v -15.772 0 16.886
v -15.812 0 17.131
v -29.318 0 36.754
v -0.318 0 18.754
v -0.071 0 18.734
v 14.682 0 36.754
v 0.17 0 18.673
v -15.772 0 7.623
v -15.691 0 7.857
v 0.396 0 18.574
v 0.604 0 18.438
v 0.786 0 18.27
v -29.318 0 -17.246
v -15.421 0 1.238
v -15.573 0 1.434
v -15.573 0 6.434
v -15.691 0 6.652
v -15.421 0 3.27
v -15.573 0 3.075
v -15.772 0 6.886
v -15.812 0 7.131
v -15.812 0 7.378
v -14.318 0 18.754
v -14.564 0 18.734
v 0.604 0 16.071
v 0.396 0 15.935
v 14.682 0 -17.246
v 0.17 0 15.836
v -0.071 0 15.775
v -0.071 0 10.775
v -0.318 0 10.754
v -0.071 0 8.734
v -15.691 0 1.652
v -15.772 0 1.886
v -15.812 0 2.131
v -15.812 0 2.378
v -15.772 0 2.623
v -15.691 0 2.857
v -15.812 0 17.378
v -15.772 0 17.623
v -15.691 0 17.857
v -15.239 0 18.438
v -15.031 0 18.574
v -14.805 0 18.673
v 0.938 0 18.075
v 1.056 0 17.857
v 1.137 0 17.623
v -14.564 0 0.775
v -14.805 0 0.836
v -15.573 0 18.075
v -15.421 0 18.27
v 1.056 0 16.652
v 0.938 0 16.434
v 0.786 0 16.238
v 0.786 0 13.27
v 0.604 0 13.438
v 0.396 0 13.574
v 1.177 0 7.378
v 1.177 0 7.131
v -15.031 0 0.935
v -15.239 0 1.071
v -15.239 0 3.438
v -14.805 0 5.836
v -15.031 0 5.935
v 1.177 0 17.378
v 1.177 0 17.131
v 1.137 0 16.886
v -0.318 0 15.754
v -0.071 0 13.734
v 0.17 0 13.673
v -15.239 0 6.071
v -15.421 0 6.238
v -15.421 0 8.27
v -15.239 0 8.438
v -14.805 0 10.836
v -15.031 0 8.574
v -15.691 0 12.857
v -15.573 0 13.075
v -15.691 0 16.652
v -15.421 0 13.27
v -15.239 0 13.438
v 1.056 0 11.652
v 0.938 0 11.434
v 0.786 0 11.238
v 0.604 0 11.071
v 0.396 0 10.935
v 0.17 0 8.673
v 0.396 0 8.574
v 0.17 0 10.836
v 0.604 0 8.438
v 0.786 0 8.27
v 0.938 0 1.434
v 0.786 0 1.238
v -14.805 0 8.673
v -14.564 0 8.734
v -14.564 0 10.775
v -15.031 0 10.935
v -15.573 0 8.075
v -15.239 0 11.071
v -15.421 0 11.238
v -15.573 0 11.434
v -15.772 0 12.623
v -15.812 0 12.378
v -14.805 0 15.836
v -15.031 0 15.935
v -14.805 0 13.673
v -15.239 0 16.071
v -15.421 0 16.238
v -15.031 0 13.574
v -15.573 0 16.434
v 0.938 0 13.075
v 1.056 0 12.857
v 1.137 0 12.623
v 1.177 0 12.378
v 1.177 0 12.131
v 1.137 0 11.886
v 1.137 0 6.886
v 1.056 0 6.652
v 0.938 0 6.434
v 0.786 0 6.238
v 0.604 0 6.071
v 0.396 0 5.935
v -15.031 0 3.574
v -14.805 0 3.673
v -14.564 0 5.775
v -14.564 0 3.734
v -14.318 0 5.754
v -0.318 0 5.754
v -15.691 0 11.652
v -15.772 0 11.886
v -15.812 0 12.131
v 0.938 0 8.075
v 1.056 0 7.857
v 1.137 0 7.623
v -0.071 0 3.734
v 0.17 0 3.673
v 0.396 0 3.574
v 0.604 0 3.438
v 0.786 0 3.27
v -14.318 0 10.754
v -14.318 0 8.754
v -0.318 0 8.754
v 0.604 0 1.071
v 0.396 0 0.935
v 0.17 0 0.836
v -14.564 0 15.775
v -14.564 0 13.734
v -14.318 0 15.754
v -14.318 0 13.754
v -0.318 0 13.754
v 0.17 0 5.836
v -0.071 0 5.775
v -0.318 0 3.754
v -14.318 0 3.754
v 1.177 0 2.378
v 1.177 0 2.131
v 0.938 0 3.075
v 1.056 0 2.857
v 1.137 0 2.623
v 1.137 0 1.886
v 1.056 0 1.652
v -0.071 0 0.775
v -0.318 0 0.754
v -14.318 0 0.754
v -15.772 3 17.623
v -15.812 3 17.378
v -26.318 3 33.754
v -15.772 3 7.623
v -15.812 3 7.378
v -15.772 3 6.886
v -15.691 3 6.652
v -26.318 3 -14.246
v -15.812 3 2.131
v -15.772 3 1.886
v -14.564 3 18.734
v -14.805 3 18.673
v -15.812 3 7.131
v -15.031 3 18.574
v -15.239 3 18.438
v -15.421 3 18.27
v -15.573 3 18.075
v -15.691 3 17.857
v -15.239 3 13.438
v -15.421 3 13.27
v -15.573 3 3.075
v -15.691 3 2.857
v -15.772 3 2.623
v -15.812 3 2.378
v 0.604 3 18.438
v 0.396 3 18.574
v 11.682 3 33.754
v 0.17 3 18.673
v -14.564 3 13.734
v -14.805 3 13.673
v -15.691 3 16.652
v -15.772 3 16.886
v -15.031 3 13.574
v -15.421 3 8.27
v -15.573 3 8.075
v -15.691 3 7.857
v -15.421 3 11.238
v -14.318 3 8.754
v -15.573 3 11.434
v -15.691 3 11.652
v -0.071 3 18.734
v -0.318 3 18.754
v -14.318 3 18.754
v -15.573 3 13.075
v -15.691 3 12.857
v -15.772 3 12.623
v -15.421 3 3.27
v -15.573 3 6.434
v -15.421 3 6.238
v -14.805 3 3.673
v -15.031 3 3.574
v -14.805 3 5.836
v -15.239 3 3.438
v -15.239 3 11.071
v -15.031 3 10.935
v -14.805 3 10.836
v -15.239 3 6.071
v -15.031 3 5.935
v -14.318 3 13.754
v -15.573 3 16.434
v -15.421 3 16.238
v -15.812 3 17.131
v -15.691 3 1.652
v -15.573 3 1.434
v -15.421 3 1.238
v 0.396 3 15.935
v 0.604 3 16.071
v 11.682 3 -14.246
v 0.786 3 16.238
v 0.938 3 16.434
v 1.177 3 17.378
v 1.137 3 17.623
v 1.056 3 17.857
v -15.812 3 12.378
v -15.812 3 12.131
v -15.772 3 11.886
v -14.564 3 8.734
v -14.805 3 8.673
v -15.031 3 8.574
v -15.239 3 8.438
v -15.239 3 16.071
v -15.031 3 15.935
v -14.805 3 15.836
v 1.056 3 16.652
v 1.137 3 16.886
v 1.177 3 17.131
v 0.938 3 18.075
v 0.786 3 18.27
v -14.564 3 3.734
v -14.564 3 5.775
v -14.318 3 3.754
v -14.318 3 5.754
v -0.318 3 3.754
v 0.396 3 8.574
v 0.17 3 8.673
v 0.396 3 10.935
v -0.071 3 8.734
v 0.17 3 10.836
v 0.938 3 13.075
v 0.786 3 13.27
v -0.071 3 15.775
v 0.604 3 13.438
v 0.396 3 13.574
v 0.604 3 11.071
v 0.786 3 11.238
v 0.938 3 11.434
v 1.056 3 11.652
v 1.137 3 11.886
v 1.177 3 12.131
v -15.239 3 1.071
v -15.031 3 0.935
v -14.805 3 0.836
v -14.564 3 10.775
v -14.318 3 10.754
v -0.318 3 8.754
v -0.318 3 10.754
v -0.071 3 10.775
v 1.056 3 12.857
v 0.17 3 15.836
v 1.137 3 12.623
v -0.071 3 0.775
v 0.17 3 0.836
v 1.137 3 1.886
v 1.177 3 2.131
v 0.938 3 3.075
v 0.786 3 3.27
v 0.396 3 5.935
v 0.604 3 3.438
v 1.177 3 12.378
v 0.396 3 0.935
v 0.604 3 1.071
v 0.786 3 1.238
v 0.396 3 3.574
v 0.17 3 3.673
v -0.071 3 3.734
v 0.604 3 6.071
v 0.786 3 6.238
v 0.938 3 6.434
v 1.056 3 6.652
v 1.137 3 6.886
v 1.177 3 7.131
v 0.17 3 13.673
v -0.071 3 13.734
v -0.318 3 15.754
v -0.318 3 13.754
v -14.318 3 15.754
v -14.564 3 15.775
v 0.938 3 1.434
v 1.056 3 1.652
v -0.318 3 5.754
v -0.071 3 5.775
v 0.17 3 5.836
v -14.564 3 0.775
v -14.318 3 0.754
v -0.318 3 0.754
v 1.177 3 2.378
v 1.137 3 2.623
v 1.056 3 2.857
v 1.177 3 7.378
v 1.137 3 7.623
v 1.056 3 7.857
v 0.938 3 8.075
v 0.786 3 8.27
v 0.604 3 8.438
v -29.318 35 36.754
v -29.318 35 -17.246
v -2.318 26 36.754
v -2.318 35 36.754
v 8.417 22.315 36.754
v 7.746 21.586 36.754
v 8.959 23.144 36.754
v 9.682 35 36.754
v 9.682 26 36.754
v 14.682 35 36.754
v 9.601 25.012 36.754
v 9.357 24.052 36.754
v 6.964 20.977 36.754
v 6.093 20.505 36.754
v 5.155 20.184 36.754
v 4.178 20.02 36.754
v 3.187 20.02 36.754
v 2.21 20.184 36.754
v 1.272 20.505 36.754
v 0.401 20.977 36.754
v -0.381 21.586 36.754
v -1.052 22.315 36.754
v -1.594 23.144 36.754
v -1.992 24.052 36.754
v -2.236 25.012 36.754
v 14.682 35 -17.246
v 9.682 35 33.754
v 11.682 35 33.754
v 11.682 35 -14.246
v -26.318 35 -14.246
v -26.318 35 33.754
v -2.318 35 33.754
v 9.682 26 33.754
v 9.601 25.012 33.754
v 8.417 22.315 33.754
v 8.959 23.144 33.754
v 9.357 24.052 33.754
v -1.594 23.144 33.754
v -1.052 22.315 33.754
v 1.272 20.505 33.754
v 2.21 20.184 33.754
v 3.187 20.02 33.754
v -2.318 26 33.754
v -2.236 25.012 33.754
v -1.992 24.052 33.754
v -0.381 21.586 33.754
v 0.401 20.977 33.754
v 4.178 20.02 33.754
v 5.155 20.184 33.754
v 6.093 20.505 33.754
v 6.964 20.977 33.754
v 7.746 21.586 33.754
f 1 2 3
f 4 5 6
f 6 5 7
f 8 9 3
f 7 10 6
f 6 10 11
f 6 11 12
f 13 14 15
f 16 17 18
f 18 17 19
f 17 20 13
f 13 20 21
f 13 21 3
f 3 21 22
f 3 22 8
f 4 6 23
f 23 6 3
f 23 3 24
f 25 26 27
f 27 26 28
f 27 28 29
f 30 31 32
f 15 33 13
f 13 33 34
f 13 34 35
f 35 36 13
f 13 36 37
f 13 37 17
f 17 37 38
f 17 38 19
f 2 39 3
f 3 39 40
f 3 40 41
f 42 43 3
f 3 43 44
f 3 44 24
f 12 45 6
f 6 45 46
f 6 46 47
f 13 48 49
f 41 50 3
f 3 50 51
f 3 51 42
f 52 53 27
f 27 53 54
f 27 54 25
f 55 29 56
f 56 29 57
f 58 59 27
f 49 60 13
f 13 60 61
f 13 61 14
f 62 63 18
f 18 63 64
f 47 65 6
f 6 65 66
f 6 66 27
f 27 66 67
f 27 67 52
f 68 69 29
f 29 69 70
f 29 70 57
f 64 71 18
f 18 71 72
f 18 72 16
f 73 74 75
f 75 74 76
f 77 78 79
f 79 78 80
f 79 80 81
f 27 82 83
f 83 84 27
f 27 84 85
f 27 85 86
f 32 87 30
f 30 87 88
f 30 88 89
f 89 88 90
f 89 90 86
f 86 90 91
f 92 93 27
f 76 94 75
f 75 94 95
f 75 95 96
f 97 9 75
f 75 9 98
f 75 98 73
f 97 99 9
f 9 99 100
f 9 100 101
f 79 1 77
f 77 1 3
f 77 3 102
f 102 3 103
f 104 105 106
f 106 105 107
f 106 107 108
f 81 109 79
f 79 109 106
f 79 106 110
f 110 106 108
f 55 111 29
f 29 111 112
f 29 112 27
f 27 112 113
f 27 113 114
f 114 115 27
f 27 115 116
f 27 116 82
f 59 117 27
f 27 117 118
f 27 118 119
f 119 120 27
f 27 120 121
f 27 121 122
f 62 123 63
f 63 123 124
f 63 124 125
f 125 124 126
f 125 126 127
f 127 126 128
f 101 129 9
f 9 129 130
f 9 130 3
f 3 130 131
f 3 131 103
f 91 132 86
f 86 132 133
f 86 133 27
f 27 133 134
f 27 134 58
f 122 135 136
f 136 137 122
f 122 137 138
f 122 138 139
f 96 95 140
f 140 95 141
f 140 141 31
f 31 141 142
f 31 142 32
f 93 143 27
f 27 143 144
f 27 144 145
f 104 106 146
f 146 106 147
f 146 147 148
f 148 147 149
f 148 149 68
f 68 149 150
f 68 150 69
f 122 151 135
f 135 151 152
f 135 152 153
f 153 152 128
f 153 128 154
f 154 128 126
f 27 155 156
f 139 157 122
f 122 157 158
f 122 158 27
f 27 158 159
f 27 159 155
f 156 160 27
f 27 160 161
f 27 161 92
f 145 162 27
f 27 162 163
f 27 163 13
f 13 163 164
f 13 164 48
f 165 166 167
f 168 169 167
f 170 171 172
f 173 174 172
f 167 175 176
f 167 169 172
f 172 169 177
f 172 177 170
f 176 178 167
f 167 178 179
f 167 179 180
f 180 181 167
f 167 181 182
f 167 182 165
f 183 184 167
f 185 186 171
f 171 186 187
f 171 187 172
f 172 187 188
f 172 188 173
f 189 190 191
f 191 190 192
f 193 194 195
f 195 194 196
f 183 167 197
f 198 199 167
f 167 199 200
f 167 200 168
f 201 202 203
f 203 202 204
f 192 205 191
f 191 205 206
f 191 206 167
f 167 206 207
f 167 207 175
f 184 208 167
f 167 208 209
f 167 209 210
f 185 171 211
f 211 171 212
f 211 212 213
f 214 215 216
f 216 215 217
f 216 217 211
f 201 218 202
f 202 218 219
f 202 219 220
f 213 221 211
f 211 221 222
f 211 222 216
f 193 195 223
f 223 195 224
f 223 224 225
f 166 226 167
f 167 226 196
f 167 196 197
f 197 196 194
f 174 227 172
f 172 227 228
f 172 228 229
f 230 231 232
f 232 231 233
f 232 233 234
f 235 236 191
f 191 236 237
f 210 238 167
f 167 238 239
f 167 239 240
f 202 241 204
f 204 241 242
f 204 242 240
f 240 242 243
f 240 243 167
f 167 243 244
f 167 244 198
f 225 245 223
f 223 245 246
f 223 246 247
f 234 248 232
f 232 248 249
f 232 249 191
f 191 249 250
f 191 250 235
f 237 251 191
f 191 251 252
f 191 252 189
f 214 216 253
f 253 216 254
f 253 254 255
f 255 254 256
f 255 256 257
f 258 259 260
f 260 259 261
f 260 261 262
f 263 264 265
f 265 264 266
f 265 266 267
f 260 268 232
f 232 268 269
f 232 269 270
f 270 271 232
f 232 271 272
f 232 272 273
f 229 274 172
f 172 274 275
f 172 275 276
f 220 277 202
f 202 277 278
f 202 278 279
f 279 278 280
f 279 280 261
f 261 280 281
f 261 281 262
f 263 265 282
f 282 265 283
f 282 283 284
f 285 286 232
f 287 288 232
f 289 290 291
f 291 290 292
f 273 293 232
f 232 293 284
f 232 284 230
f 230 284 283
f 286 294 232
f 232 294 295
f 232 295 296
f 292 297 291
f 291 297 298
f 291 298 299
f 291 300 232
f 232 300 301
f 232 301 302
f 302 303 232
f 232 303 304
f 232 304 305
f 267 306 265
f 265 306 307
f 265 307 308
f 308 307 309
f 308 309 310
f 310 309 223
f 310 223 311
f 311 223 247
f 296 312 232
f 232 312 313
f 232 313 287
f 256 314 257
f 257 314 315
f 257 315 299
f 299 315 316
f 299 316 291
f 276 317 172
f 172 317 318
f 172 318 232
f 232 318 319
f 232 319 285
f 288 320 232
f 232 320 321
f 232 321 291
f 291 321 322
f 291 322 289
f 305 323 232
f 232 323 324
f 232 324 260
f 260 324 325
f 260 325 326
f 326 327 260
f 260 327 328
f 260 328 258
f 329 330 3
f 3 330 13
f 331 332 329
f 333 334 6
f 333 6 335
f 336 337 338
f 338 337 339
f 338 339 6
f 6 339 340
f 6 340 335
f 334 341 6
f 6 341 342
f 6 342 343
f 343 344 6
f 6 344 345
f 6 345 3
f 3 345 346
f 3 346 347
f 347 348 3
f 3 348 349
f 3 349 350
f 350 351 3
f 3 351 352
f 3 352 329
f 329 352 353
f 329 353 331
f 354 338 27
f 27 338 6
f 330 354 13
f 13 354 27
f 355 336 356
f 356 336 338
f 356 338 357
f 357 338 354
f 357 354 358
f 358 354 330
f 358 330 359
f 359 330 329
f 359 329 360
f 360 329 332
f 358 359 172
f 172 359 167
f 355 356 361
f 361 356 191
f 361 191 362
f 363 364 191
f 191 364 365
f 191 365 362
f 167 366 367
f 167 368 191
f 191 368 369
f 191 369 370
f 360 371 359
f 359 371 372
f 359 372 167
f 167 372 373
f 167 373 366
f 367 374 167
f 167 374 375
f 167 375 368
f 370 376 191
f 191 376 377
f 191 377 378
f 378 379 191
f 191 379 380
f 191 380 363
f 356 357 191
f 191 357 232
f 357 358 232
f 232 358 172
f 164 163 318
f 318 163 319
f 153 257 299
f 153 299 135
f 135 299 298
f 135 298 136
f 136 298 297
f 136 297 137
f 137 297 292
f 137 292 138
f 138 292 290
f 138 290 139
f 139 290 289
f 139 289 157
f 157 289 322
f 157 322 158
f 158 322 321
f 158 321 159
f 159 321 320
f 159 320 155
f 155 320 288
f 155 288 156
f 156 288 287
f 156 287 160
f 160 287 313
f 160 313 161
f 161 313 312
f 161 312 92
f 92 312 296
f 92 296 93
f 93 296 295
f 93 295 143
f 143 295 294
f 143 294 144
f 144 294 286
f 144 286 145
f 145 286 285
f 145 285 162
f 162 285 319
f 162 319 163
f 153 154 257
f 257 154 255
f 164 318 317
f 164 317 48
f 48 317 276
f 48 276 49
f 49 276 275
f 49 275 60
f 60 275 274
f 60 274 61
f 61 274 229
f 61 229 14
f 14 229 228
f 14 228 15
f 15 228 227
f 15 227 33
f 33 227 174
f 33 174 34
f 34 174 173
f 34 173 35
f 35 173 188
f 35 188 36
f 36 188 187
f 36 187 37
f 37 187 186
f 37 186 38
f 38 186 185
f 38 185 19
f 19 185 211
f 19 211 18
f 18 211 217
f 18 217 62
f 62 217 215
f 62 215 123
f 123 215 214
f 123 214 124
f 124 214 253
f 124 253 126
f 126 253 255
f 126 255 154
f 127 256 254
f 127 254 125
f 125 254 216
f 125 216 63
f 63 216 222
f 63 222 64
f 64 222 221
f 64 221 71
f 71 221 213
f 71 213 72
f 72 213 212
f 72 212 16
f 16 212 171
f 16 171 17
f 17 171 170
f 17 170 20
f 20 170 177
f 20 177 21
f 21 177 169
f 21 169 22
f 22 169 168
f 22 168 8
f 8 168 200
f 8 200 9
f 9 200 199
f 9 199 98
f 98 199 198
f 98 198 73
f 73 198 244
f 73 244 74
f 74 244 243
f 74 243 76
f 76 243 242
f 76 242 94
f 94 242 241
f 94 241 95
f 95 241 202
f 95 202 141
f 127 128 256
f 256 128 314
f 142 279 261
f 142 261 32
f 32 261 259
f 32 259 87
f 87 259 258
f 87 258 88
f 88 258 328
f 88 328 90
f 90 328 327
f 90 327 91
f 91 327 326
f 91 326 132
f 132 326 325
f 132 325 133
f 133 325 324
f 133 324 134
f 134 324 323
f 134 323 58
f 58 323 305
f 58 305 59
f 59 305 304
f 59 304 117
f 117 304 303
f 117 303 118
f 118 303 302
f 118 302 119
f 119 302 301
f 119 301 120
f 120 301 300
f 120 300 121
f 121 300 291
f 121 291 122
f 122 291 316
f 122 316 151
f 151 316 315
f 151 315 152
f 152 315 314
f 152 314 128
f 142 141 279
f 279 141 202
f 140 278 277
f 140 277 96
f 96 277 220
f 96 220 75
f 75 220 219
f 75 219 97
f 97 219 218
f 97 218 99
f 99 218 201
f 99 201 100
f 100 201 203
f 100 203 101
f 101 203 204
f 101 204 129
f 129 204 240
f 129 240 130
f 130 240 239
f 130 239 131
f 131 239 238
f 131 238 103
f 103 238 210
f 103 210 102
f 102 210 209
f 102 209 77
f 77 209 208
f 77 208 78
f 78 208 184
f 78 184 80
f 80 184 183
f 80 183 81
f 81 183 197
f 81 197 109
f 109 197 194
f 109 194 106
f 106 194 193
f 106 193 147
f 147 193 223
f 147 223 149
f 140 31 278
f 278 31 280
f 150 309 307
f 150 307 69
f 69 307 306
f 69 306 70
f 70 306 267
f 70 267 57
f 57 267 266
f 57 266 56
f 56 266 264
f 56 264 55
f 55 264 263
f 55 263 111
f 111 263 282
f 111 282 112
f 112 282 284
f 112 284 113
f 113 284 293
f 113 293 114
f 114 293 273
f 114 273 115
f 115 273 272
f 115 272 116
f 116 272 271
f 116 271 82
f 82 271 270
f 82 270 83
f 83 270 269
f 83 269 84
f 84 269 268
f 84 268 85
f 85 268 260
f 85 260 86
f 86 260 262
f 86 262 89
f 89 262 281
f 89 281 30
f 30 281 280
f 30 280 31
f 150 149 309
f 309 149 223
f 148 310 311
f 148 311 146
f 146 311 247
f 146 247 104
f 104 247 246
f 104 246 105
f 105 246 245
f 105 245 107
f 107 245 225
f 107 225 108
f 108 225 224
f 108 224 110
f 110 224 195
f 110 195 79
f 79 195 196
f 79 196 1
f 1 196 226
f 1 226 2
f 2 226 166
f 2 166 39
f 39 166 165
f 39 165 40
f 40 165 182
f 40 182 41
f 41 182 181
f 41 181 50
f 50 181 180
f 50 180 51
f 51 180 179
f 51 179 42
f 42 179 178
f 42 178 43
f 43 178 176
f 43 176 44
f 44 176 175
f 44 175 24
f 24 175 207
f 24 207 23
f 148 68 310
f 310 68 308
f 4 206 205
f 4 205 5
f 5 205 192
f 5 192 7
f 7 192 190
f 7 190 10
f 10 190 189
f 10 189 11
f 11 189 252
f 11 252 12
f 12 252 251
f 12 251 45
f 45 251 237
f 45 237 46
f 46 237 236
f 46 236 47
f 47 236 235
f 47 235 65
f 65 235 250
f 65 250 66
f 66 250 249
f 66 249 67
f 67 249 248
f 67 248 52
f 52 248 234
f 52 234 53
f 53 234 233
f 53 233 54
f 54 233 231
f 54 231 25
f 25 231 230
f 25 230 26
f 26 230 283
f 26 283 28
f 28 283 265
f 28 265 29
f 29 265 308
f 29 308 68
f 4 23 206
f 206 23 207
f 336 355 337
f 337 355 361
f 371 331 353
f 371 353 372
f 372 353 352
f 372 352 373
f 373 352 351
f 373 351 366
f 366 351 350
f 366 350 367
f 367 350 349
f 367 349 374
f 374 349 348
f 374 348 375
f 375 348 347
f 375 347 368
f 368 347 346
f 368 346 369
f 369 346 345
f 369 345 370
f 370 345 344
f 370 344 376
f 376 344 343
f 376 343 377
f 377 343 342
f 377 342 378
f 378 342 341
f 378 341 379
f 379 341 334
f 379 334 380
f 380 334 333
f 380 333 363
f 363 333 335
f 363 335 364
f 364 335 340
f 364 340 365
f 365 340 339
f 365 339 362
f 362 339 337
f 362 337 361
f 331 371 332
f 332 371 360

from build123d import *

# Parameters (mm, degrees)
SCHIZZO1_W                   = 44
SCHIZZO1_H                   = 54
ESTRUSIONE_ESTRUSIONE1_DEPTH = 35
SVUOTA1_T                    = -3
TAGLIO_ESTRUSIONE1_DEPTH     = 57.871813174
TAGLIO_ESTRUSIONE2_REACH     = 72.714


with BuildPart() as part:
    # Schizzo1 → Estrusione-Estrusione1 (new body)
    with BuildSketch(Plane(origin=(0, 0, 0), x_dir=(1, 0, 0), z_dir=(0, 1, 0))):
        with Locations((-7.317535287, -9.754391008)):
            Rectangle(SCHIZZO1_W, SCHIZZO1_H)
    extrude(amount=ESTRUSIONE_ESTRUSIONE1_DEPTH)

    # Svuota1
    svuota1_openings = [part.faces().sort_by_distance(p)[0] for p in [
        (-7.317535287, 35, 9.754391008),
    ]]
    offset(amount=SVUOTA1_T, openings=svuota1_openings, kind=Kind.INTERSECTION)

    # Schizzo2 → Taglio-Estrusione1 (cut, through all)
    with BuildSketch(Plane(origin=(0, 3, 0), x_dir=(1, 0, 0), z_dir=(0, 1, 0))):
        with BuildLine():
            Line((-0.317535287, -0.754391008), (-14.317535287, -0.754391008))
            ThreePointArc((-14.317535287, -0.754391008), (-15.817535287, -2.254391008), (-14.317535287, -3.754391008))
            Line((-14.317535287, -3.754391008), (-0.317535287, -3.754391008))
            ThreePointArc((-0.317535287, -3.754391008), (1.182464713, -2.254391008), (-0.317535287, -0.754391008))
        make_face()
        with BuildLine():
            Line((-0.317535287, -5.754391008), (-14.317535287, -5.754391008))
            ThreePointArc((-14.317535287, -5.754391008), (-15.817535287, -7.254391008), (-14.317535287, -8.754391008))
            Line((-14.317535287, -8.754391008), (-0.317535287, -8.754391008))
            ThreePointArc((-0.317535287, -8.754391008), (1.182464713, -7.254391008), (-0.317535287, -5.754391008))
        make_face()
        with BuildLine():
            Line((-0.317535287, -10.754391008), (-14.317535287, -10.754391008))
            ThreePointArc((-14.317535287, -10.754391008), (-15.817535287, -12.254391008), (-14.317535287, -13.754391008))
            Line((-14.317535287, -13.754391008), (-0.317535287, -13.754391008))
            ThreePointArc((-0.317535287, -13.754391008), (1.182464713, -12.254391008), (-0.317535287, -10.754391008))
        make_face()
        with BuildLine():
            Line((-0.317535287, -15.754391008), (-14.317535287, -15.754391008))
            ThreePointArc((-14.317535287, -15.754391008), (-15.817535287, -17.254391008), (-14.317535287, -18.754391008))
            Line((-14.317535287, -18.754391008), (-0.317535287, -18.754391008))
            ThreePointArc((-0.317535287, -18.754391008), (1.182464713, -17.254391008), (-0.317535287, -15.754391008))
        make_face()
    extrude(amount=-TAGLIO_ESTRUSIONE1_DEPTH, mode=Mode.SUBTRACT)

    # Schizzo3 → Taglio-Estrusione2 (cut, up to next)
    with BuildSketch(Plane.XY.offset(36.754391008), mode=Mode.PRIVATE) as taglio_estrusione2_sk1:
        with BuildLine():
            Line((9.682464713, 35), (9.682464713, 26))
            ThreePointArc((9.682464713, 26), (3.682464713, 20), (-2.317535287, 26))
            Line((-2.317535287, 26), (-2.317535287, 35))
            Line((-2.317535287, 35), (9.682464713, 35))
        make_face()
    taglio_estrusione2_tool1 = extrude(taglio_estrusione2_sk1.sketch, amount=-TAGLIO_ESTRUSIONE2_REACH, mode=Mode.PRIVATE) & part.part
    add(taglio_estrusione2_tool1.solids().sort_by_distance((3.682465, 28.078412, 36.754391))[0], mode=Mode.SUBTRACT)


solid = part.part
